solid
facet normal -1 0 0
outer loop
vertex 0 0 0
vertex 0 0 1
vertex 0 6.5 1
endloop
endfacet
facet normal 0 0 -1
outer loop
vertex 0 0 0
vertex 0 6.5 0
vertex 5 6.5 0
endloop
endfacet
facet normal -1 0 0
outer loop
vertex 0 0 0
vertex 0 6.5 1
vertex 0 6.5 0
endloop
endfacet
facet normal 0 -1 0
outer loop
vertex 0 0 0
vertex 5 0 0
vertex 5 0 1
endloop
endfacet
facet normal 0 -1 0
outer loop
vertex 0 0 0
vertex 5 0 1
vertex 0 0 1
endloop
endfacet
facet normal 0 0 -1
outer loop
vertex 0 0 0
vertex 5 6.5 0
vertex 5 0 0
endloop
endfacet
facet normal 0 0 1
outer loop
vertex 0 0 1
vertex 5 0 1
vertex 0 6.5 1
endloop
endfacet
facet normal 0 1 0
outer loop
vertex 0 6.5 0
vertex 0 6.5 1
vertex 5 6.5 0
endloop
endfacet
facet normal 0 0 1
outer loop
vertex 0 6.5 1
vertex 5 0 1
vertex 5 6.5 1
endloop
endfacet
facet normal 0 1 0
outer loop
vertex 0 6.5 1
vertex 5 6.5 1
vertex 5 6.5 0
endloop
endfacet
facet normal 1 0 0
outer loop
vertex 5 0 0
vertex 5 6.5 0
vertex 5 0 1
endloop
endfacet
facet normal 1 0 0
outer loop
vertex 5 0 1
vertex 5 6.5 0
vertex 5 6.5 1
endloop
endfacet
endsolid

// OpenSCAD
/* Warning, this is a very basic generator with a lot of approximation 
input data : [VQFN, NPA, 5.0x6.5mm, 40, , A, C04-01206A]
generated by com.zoubworld.electronics.cad.model3d.Basic
Date : Sun Feb 15 10:50:49 CET 2026
*/

//body
color("black")
translate([0,0,0])
cube([5.0,6.5,1.0], center=false);
